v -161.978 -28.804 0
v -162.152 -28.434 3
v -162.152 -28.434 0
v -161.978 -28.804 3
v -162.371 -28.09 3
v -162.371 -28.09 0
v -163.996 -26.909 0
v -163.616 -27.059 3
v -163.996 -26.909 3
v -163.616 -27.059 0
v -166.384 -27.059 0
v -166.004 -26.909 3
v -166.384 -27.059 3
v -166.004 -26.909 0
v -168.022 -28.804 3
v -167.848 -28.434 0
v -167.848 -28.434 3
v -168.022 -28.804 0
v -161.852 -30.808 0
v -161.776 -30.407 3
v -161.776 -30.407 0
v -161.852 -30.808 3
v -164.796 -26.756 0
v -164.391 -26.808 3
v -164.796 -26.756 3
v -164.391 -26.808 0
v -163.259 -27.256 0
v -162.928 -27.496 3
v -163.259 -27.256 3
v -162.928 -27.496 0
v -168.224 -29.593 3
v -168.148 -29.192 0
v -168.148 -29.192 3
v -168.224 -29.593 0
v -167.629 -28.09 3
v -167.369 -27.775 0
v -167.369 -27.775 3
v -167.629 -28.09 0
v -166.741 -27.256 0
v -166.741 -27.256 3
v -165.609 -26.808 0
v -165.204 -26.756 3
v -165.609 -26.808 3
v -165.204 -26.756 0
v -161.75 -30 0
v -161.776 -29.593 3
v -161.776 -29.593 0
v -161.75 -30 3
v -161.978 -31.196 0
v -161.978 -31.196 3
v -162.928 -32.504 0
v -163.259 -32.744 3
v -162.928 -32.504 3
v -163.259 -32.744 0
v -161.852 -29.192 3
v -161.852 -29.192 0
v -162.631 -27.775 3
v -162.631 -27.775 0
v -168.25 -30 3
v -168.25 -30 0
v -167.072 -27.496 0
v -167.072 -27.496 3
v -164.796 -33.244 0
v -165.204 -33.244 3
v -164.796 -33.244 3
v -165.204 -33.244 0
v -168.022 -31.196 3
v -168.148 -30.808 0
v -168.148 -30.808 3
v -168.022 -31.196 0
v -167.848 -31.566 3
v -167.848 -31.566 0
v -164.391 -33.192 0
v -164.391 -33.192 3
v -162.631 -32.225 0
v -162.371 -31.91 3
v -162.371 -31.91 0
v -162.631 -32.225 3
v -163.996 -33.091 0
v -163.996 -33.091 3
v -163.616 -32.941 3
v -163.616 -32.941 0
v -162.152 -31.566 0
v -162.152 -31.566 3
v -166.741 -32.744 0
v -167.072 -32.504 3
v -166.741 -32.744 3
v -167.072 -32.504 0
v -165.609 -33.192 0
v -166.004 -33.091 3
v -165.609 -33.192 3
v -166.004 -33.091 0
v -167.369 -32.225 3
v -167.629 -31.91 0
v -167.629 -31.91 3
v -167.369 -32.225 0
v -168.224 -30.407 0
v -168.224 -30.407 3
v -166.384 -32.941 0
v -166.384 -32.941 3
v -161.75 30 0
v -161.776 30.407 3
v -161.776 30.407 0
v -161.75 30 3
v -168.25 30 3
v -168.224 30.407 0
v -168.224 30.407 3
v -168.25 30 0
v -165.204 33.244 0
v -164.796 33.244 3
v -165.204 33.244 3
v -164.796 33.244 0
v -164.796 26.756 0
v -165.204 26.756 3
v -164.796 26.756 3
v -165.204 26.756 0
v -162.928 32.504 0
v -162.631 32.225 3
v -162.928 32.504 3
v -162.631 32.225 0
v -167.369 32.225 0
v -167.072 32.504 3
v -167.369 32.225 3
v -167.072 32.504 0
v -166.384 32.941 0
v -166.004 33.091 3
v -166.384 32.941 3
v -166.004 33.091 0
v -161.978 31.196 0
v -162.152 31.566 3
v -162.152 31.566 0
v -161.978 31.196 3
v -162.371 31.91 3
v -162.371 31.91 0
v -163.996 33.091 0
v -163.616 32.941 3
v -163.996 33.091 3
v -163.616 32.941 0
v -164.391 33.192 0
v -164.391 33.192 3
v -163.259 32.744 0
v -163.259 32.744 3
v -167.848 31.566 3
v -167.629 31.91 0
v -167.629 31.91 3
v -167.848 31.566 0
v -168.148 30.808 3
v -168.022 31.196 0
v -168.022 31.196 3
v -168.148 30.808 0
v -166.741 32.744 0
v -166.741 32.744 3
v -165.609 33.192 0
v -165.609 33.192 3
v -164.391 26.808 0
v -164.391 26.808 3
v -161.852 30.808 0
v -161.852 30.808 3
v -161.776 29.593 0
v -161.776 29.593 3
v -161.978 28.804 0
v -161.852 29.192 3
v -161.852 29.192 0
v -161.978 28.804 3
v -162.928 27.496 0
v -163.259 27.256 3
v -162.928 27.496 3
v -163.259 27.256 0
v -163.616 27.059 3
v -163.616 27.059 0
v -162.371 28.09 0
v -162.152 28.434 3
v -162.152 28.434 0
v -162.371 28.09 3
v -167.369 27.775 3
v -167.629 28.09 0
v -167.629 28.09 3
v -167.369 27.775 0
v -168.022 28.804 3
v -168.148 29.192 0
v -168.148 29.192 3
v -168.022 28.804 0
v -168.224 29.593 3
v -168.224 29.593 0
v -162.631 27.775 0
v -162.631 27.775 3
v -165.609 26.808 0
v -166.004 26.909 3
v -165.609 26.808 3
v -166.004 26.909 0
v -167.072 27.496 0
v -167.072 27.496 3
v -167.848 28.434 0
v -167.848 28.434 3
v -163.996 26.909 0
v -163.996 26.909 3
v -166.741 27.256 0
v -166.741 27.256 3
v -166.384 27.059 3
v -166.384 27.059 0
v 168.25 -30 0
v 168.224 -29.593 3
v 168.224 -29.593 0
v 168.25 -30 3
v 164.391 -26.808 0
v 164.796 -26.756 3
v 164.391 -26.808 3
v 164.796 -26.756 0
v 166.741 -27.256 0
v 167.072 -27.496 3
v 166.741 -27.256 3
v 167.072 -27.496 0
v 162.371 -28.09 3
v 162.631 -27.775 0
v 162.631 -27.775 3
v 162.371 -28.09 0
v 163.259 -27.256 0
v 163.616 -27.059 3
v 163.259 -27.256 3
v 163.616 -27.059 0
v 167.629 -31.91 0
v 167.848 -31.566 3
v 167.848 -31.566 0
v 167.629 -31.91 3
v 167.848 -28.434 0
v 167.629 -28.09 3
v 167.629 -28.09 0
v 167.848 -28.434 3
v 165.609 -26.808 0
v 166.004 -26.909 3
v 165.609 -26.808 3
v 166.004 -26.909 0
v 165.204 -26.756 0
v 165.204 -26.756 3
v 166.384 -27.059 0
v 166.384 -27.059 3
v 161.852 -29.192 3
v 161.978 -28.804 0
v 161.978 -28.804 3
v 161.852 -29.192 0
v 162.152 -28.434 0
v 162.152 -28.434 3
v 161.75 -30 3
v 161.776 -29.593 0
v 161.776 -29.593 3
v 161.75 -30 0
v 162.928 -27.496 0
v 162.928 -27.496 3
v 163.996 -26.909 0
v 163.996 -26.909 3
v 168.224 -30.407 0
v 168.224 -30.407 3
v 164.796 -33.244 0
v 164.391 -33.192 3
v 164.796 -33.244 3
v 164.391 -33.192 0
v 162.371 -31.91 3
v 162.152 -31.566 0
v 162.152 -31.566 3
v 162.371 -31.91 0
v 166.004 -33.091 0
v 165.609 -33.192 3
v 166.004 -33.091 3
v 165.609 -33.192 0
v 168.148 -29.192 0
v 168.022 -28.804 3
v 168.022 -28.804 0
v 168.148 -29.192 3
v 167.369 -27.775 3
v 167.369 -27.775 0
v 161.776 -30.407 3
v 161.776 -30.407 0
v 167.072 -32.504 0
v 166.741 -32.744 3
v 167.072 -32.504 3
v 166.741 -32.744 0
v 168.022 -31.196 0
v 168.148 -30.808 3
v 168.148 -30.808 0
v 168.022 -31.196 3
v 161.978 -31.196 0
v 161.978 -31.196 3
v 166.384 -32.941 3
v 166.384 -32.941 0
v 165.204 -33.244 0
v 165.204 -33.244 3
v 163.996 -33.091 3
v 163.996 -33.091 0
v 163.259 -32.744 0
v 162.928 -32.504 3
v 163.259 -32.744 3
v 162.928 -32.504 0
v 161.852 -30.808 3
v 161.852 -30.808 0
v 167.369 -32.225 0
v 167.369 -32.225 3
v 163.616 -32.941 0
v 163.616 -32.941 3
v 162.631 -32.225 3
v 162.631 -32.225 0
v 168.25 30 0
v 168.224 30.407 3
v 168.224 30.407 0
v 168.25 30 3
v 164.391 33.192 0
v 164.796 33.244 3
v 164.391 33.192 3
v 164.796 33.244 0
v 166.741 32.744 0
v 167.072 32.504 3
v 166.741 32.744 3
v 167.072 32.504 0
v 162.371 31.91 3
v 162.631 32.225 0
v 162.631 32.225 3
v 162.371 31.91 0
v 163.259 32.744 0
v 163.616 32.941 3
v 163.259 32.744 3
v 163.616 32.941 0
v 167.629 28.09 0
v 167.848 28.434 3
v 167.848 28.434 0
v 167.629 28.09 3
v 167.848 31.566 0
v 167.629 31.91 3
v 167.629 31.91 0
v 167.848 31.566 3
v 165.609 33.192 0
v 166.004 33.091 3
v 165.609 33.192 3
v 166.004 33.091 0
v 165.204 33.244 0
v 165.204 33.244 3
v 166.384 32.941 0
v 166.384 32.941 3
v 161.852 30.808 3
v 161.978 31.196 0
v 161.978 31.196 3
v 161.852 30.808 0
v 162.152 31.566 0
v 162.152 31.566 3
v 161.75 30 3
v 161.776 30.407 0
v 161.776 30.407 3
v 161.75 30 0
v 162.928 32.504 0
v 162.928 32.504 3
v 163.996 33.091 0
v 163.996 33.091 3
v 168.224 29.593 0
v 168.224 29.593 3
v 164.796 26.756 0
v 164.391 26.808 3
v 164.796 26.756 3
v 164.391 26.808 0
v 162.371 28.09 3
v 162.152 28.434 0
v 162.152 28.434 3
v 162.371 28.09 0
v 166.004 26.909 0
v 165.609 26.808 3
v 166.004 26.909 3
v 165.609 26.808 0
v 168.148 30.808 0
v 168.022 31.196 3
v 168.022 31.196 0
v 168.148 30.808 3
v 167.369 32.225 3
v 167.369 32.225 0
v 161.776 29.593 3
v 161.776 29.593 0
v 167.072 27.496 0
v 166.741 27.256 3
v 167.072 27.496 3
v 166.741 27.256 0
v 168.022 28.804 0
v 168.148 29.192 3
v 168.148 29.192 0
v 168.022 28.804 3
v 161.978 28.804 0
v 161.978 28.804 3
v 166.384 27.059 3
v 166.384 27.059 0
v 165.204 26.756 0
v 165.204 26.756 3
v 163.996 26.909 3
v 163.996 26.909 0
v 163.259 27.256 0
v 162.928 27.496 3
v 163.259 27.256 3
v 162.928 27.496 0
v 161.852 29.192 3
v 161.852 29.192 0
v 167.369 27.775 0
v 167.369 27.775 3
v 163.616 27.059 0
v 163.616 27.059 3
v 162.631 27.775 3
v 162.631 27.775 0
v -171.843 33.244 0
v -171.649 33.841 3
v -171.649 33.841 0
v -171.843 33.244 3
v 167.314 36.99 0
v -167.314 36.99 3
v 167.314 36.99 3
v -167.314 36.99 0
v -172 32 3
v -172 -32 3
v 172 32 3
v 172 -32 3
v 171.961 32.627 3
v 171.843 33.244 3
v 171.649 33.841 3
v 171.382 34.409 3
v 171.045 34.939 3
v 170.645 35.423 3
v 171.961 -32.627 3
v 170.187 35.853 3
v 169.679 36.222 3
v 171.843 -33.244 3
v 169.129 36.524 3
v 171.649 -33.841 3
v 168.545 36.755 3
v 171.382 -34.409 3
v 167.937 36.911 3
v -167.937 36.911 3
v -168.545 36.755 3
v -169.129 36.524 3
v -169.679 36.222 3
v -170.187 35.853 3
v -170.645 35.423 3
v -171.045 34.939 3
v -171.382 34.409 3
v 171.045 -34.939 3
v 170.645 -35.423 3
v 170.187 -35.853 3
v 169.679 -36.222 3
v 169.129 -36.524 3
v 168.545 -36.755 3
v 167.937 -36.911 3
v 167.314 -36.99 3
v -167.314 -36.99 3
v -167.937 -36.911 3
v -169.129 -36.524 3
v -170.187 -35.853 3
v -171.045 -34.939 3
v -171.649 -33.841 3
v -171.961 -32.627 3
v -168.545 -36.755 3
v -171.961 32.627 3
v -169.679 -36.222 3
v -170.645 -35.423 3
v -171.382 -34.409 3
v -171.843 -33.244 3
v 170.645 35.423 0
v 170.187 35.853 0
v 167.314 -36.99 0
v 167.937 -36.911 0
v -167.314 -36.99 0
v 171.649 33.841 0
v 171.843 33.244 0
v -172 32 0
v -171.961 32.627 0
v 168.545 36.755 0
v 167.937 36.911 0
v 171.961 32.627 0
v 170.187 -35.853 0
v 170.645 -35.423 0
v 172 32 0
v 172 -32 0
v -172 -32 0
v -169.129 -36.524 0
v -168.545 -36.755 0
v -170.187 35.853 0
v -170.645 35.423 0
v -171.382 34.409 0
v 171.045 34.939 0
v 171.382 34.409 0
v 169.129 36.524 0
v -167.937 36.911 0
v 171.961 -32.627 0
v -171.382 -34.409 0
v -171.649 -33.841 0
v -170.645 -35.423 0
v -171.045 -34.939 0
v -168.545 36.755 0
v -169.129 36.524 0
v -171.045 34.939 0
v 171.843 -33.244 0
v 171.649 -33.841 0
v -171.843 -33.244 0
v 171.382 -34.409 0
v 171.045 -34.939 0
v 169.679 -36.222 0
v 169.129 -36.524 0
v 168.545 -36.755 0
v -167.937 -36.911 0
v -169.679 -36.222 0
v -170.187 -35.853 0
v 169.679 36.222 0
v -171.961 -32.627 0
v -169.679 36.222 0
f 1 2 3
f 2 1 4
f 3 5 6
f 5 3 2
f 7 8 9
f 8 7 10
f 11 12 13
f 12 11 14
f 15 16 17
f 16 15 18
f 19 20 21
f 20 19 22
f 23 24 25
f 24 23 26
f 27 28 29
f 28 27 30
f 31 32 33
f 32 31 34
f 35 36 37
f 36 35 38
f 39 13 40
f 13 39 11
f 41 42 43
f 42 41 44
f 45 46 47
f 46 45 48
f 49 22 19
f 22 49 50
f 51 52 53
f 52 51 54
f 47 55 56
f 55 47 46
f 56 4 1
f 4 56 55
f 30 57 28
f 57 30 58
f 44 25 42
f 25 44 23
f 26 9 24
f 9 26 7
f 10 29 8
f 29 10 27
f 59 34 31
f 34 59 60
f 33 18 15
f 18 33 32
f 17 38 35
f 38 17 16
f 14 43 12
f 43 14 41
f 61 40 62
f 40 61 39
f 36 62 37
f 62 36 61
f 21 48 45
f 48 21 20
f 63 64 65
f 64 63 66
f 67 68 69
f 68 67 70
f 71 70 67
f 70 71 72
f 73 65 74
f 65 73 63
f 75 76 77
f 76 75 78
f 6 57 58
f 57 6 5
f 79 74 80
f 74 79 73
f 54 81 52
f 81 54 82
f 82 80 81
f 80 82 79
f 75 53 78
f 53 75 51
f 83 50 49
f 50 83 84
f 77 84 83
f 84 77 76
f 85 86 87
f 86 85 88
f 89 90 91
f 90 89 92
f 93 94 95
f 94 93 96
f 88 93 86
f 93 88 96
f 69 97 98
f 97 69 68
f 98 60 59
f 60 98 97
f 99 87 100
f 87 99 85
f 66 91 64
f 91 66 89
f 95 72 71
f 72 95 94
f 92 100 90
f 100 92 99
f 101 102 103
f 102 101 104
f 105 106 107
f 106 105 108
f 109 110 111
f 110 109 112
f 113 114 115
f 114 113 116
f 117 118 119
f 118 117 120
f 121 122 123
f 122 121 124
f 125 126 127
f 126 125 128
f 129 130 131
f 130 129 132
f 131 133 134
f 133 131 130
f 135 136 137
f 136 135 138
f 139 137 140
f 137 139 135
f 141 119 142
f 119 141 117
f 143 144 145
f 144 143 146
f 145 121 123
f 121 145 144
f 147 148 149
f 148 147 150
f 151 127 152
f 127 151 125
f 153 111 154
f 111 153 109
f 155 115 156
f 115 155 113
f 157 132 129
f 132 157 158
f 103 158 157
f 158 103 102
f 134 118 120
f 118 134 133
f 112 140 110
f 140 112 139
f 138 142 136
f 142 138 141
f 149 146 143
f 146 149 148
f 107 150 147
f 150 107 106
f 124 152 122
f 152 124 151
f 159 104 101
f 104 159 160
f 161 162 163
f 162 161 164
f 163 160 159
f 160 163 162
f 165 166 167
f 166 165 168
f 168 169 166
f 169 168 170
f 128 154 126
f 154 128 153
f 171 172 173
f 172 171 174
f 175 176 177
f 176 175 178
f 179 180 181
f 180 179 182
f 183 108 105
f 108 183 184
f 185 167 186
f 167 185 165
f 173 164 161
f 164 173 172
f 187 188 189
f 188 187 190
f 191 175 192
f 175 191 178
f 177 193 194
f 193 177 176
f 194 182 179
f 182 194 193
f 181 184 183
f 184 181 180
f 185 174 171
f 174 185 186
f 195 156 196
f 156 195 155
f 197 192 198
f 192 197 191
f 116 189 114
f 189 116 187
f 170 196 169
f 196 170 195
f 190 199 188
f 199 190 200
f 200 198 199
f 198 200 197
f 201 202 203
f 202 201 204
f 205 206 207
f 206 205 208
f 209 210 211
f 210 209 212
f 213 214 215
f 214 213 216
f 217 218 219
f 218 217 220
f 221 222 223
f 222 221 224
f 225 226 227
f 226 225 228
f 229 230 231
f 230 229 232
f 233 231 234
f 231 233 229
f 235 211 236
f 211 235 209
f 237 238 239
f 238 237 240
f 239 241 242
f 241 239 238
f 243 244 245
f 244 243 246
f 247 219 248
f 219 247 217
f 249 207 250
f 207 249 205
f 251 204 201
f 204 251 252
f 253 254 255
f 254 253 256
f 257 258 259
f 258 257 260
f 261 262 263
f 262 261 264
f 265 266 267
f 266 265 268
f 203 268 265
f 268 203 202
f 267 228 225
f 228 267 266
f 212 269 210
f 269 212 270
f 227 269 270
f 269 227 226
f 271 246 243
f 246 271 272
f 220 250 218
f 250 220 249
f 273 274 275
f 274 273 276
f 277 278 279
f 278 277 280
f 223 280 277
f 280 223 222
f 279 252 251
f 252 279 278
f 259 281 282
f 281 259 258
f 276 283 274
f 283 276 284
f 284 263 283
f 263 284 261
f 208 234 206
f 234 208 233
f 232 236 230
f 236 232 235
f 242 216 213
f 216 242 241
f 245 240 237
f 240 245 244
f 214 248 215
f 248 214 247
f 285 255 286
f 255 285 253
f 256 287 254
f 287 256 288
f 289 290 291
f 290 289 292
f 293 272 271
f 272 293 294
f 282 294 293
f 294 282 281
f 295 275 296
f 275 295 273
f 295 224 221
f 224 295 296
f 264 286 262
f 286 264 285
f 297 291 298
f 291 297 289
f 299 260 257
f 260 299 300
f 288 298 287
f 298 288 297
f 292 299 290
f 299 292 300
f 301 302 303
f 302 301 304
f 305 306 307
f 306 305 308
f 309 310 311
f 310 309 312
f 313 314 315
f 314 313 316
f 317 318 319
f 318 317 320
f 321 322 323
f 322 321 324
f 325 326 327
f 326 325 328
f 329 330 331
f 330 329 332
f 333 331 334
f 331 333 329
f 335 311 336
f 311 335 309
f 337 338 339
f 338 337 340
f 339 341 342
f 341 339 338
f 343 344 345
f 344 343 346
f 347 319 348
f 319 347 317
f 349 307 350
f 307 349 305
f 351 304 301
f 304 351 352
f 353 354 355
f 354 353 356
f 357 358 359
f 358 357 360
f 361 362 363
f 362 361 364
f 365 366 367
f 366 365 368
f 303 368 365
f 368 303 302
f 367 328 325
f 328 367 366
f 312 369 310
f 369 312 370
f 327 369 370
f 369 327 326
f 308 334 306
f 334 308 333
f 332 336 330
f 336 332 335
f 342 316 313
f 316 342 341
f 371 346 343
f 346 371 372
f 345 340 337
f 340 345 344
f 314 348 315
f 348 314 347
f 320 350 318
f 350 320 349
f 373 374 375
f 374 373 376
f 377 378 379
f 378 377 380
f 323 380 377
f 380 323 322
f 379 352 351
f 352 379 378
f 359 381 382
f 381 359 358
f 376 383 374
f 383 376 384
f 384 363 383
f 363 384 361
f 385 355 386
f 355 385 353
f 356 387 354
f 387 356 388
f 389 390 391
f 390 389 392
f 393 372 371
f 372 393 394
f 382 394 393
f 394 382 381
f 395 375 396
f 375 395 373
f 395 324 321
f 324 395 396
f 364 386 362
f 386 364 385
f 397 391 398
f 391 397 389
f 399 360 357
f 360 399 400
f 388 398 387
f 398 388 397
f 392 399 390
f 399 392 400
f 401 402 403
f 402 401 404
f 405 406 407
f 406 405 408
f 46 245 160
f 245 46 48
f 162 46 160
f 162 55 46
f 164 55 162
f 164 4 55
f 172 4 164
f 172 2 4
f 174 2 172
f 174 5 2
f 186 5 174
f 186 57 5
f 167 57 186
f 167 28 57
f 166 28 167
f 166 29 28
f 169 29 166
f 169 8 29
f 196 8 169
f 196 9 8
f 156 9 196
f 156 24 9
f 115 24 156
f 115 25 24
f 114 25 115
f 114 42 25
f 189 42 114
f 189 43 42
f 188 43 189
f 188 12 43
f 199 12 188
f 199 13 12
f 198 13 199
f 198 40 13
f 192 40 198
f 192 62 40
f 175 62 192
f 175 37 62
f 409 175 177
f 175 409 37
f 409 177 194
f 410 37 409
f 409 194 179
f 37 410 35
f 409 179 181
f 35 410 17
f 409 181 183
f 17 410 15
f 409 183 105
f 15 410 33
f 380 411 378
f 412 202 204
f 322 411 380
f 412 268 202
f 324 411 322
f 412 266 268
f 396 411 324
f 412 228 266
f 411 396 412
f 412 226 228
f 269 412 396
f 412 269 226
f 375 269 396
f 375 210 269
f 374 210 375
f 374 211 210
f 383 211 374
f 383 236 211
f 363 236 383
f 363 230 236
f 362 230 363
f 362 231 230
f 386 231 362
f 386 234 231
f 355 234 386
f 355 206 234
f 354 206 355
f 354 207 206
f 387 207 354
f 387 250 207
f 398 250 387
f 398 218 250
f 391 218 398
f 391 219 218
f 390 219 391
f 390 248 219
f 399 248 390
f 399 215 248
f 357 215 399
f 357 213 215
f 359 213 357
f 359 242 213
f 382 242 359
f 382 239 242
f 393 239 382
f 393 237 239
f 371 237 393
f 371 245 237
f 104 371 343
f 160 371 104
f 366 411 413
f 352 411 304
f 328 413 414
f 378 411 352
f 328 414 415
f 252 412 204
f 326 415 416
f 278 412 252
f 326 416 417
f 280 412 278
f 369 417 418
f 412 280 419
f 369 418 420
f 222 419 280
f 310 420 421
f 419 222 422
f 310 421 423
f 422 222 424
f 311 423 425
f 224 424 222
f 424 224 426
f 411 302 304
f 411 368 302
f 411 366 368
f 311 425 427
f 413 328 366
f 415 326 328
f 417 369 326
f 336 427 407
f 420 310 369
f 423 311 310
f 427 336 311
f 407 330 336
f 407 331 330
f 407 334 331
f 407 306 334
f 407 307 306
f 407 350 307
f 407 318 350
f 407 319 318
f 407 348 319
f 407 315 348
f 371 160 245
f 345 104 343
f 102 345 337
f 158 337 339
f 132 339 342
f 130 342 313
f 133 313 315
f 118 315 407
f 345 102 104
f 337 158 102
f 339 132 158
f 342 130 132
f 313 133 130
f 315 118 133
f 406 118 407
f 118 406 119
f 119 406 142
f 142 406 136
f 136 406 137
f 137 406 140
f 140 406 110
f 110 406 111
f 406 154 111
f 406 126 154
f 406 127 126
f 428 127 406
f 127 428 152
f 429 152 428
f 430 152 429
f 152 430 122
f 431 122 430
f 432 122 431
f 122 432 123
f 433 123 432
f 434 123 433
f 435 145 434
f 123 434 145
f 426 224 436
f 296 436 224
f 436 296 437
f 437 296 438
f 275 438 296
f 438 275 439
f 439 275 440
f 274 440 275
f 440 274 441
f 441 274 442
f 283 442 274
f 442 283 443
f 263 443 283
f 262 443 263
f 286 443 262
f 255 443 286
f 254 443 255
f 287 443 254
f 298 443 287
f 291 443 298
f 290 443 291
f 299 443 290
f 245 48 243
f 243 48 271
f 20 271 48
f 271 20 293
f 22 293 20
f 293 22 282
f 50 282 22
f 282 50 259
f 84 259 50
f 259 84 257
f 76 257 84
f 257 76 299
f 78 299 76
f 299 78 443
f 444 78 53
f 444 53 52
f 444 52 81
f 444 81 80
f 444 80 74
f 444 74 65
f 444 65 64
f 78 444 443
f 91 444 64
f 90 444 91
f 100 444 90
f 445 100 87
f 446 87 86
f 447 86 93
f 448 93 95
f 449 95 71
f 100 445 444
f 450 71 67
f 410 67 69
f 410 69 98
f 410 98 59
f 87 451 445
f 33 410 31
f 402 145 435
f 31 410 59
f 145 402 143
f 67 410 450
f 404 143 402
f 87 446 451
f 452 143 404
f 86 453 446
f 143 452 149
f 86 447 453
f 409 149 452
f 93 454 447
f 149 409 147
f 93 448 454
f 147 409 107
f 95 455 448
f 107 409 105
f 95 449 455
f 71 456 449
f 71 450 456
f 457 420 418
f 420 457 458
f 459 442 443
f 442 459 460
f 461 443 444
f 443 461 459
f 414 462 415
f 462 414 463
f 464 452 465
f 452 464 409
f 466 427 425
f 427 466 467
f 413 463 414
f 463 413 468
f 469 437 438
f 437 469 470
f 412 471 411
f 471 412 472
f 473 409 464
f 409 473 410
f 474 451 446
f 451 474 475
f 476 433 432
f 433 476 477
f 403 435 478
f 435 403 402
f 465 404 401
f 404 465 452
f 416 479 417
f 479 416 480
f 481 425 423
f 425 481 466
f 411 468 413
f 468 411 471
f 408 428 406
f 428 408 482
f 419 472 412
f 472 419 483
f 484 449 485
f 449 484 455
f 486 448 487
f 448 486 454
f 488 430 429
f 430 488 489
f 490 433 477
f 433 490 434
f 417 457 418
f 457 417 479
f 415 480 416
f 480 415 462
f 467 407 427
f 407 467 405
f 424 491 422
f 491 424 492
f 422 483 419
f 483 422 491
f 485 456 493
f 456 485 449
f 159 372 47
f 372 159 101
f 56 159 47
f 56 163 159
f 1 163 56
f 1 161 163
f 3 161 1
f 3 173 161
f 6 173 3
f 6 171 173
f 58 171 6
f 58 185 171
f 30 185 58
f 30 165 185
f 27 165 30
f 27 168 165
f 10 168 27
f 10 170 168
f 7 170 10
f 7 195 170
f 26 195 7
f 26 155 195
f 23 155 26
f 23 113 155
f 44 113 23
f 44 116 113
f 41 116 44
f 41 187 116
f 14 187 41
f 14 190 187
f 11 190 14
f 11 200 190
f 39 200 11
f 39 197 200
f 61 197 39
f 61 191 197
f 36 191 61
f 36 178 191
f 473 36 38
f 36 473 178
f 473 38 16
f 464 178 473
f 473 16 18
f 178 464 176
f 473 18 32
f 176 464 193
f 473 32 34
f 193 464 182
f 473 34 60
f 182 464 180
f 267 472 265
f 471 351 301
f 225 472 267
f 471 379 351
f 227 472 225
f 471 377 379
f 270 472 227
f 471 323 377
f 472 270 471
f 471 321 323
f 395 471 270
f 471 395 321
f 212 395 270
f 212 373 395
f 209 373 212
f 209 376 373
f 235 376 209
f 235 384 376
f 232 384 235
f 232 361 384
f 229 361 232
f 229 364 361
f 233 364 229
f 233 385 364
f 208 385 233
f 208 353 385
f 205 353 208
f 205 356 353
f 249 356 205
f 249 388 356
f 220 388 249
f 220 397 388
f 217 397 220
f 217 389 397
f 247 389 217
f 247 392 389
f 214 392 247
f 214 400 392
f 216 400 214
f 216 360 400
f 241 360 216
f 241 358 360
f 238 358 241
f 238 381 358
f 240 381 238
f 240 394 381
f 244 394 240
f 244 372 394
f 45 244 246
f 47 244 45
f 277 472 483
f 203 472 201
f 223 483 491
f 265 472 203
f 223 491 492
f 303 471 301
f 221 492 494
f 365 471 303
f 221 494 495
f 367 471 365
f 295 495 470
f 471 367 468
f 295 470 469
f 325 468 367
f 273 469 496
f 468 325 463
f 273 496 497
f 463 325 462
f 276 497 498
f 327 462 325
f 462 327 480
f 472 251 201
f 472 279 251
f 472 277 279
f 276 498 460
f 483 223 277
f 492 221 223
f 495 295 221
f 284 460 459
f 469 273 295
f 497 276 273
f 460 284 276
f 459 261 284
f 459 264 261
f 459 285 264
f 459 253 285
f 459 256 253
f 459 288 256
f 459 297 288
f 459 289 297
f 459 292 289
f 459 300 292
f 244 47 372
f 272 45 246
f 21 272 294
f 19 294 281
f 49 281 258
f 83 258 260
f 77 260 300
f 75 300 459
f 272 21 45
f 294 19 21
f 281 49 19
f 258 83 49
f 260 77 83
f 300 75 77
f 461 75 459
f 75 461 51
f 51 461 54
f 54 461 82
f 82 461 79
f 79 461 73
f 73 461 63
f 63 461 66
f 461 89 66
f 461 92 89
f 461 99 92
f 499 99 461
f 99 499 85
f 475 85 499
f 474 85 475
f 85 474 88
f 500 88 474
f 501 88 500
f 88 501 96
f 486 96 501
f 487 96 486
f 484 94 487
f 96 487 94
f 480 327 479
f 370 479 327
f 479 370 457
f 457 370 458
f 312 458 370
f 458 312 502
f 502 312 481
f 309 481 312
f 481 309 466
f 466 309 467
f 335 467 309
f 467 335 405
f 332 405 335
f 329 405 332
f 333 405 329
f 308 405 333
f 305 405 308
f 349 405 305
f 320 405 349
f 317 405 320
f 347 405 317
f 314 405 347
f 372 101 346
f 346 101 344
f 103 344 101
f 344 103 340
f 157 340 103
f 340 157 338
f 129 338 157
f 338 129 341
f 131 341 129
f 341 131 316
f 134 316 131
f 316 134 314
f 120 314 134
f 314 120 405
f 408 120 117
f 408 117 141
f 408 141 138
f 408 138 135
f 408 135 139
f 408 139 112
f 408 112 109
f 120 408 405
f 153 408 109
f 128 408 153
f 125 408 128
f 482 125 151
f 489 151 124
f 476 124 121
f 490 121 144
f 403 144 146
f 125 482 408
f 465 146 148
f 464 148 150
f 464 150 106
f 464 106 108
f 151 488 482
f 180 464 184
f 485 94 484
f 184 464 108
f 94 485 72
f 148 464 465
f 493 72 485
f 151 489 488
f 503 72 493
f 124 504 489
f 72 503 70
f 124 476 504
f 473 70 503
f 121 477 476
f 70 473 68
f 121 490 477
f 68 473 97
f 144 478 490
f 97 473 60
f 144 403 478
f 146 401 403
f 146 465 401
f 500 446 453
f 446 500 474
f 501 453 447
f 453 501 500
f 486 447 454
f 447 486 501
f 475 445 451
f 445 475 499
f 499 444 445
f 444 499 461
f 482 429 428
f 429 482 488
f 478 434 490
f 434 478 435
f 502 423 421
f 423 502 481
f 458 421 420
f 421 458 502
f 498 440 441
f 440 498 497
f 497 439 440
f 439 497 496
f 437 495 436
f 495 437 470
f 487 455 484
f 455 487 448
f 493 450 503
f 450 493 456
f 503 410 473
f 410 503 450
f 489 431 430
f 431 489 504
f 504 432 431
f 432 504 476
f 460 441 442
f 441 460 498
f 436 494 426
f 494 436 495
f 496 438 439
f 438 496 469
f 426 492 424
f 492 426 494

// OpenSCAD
$fn = 50;


difference() {
	union() {
		hull() {
			translate(v = [-167.0000000000, 32.0000000000, 0]) {
				cylinder(h = 3, r = 5);
			}
			translate(v = [167.0000000000, 32.0000000000, 0]) {
				cylinder(h = 3, r = 5);
			}
			translate(v = [-167.0000000000, -32.0000000000, 0]) {
				cylinder(h = 3, r = 5);
			}
			translate(v = [167.0000000000, -32.0000000000, 0]) {
				cylinder(h = 3, r = 5);
			}
		}
	}
	union() {
		translate(v = [-165.0000000000, -30.0000000000, -100.0000000000]) {
			cylinder(h = 200, r = 3.2500000000);
		}
		translate(v = [-165.0000000000, 30.0000000000, -100.0000000000]) {
			cylinder(h = 200, r = 3.2500000000);
		}
		translate(v = [165.0000000000, -30.0000000000, -100.0000000000]) {
			cylinder(h = 200, r = 3.2500000000);
		}
		translate(v = [165.0000000000, 30.0000000000, -100.0000000000]) {
			cylinder(h = 200, r = 3.2500000000);
		}
	}
}
